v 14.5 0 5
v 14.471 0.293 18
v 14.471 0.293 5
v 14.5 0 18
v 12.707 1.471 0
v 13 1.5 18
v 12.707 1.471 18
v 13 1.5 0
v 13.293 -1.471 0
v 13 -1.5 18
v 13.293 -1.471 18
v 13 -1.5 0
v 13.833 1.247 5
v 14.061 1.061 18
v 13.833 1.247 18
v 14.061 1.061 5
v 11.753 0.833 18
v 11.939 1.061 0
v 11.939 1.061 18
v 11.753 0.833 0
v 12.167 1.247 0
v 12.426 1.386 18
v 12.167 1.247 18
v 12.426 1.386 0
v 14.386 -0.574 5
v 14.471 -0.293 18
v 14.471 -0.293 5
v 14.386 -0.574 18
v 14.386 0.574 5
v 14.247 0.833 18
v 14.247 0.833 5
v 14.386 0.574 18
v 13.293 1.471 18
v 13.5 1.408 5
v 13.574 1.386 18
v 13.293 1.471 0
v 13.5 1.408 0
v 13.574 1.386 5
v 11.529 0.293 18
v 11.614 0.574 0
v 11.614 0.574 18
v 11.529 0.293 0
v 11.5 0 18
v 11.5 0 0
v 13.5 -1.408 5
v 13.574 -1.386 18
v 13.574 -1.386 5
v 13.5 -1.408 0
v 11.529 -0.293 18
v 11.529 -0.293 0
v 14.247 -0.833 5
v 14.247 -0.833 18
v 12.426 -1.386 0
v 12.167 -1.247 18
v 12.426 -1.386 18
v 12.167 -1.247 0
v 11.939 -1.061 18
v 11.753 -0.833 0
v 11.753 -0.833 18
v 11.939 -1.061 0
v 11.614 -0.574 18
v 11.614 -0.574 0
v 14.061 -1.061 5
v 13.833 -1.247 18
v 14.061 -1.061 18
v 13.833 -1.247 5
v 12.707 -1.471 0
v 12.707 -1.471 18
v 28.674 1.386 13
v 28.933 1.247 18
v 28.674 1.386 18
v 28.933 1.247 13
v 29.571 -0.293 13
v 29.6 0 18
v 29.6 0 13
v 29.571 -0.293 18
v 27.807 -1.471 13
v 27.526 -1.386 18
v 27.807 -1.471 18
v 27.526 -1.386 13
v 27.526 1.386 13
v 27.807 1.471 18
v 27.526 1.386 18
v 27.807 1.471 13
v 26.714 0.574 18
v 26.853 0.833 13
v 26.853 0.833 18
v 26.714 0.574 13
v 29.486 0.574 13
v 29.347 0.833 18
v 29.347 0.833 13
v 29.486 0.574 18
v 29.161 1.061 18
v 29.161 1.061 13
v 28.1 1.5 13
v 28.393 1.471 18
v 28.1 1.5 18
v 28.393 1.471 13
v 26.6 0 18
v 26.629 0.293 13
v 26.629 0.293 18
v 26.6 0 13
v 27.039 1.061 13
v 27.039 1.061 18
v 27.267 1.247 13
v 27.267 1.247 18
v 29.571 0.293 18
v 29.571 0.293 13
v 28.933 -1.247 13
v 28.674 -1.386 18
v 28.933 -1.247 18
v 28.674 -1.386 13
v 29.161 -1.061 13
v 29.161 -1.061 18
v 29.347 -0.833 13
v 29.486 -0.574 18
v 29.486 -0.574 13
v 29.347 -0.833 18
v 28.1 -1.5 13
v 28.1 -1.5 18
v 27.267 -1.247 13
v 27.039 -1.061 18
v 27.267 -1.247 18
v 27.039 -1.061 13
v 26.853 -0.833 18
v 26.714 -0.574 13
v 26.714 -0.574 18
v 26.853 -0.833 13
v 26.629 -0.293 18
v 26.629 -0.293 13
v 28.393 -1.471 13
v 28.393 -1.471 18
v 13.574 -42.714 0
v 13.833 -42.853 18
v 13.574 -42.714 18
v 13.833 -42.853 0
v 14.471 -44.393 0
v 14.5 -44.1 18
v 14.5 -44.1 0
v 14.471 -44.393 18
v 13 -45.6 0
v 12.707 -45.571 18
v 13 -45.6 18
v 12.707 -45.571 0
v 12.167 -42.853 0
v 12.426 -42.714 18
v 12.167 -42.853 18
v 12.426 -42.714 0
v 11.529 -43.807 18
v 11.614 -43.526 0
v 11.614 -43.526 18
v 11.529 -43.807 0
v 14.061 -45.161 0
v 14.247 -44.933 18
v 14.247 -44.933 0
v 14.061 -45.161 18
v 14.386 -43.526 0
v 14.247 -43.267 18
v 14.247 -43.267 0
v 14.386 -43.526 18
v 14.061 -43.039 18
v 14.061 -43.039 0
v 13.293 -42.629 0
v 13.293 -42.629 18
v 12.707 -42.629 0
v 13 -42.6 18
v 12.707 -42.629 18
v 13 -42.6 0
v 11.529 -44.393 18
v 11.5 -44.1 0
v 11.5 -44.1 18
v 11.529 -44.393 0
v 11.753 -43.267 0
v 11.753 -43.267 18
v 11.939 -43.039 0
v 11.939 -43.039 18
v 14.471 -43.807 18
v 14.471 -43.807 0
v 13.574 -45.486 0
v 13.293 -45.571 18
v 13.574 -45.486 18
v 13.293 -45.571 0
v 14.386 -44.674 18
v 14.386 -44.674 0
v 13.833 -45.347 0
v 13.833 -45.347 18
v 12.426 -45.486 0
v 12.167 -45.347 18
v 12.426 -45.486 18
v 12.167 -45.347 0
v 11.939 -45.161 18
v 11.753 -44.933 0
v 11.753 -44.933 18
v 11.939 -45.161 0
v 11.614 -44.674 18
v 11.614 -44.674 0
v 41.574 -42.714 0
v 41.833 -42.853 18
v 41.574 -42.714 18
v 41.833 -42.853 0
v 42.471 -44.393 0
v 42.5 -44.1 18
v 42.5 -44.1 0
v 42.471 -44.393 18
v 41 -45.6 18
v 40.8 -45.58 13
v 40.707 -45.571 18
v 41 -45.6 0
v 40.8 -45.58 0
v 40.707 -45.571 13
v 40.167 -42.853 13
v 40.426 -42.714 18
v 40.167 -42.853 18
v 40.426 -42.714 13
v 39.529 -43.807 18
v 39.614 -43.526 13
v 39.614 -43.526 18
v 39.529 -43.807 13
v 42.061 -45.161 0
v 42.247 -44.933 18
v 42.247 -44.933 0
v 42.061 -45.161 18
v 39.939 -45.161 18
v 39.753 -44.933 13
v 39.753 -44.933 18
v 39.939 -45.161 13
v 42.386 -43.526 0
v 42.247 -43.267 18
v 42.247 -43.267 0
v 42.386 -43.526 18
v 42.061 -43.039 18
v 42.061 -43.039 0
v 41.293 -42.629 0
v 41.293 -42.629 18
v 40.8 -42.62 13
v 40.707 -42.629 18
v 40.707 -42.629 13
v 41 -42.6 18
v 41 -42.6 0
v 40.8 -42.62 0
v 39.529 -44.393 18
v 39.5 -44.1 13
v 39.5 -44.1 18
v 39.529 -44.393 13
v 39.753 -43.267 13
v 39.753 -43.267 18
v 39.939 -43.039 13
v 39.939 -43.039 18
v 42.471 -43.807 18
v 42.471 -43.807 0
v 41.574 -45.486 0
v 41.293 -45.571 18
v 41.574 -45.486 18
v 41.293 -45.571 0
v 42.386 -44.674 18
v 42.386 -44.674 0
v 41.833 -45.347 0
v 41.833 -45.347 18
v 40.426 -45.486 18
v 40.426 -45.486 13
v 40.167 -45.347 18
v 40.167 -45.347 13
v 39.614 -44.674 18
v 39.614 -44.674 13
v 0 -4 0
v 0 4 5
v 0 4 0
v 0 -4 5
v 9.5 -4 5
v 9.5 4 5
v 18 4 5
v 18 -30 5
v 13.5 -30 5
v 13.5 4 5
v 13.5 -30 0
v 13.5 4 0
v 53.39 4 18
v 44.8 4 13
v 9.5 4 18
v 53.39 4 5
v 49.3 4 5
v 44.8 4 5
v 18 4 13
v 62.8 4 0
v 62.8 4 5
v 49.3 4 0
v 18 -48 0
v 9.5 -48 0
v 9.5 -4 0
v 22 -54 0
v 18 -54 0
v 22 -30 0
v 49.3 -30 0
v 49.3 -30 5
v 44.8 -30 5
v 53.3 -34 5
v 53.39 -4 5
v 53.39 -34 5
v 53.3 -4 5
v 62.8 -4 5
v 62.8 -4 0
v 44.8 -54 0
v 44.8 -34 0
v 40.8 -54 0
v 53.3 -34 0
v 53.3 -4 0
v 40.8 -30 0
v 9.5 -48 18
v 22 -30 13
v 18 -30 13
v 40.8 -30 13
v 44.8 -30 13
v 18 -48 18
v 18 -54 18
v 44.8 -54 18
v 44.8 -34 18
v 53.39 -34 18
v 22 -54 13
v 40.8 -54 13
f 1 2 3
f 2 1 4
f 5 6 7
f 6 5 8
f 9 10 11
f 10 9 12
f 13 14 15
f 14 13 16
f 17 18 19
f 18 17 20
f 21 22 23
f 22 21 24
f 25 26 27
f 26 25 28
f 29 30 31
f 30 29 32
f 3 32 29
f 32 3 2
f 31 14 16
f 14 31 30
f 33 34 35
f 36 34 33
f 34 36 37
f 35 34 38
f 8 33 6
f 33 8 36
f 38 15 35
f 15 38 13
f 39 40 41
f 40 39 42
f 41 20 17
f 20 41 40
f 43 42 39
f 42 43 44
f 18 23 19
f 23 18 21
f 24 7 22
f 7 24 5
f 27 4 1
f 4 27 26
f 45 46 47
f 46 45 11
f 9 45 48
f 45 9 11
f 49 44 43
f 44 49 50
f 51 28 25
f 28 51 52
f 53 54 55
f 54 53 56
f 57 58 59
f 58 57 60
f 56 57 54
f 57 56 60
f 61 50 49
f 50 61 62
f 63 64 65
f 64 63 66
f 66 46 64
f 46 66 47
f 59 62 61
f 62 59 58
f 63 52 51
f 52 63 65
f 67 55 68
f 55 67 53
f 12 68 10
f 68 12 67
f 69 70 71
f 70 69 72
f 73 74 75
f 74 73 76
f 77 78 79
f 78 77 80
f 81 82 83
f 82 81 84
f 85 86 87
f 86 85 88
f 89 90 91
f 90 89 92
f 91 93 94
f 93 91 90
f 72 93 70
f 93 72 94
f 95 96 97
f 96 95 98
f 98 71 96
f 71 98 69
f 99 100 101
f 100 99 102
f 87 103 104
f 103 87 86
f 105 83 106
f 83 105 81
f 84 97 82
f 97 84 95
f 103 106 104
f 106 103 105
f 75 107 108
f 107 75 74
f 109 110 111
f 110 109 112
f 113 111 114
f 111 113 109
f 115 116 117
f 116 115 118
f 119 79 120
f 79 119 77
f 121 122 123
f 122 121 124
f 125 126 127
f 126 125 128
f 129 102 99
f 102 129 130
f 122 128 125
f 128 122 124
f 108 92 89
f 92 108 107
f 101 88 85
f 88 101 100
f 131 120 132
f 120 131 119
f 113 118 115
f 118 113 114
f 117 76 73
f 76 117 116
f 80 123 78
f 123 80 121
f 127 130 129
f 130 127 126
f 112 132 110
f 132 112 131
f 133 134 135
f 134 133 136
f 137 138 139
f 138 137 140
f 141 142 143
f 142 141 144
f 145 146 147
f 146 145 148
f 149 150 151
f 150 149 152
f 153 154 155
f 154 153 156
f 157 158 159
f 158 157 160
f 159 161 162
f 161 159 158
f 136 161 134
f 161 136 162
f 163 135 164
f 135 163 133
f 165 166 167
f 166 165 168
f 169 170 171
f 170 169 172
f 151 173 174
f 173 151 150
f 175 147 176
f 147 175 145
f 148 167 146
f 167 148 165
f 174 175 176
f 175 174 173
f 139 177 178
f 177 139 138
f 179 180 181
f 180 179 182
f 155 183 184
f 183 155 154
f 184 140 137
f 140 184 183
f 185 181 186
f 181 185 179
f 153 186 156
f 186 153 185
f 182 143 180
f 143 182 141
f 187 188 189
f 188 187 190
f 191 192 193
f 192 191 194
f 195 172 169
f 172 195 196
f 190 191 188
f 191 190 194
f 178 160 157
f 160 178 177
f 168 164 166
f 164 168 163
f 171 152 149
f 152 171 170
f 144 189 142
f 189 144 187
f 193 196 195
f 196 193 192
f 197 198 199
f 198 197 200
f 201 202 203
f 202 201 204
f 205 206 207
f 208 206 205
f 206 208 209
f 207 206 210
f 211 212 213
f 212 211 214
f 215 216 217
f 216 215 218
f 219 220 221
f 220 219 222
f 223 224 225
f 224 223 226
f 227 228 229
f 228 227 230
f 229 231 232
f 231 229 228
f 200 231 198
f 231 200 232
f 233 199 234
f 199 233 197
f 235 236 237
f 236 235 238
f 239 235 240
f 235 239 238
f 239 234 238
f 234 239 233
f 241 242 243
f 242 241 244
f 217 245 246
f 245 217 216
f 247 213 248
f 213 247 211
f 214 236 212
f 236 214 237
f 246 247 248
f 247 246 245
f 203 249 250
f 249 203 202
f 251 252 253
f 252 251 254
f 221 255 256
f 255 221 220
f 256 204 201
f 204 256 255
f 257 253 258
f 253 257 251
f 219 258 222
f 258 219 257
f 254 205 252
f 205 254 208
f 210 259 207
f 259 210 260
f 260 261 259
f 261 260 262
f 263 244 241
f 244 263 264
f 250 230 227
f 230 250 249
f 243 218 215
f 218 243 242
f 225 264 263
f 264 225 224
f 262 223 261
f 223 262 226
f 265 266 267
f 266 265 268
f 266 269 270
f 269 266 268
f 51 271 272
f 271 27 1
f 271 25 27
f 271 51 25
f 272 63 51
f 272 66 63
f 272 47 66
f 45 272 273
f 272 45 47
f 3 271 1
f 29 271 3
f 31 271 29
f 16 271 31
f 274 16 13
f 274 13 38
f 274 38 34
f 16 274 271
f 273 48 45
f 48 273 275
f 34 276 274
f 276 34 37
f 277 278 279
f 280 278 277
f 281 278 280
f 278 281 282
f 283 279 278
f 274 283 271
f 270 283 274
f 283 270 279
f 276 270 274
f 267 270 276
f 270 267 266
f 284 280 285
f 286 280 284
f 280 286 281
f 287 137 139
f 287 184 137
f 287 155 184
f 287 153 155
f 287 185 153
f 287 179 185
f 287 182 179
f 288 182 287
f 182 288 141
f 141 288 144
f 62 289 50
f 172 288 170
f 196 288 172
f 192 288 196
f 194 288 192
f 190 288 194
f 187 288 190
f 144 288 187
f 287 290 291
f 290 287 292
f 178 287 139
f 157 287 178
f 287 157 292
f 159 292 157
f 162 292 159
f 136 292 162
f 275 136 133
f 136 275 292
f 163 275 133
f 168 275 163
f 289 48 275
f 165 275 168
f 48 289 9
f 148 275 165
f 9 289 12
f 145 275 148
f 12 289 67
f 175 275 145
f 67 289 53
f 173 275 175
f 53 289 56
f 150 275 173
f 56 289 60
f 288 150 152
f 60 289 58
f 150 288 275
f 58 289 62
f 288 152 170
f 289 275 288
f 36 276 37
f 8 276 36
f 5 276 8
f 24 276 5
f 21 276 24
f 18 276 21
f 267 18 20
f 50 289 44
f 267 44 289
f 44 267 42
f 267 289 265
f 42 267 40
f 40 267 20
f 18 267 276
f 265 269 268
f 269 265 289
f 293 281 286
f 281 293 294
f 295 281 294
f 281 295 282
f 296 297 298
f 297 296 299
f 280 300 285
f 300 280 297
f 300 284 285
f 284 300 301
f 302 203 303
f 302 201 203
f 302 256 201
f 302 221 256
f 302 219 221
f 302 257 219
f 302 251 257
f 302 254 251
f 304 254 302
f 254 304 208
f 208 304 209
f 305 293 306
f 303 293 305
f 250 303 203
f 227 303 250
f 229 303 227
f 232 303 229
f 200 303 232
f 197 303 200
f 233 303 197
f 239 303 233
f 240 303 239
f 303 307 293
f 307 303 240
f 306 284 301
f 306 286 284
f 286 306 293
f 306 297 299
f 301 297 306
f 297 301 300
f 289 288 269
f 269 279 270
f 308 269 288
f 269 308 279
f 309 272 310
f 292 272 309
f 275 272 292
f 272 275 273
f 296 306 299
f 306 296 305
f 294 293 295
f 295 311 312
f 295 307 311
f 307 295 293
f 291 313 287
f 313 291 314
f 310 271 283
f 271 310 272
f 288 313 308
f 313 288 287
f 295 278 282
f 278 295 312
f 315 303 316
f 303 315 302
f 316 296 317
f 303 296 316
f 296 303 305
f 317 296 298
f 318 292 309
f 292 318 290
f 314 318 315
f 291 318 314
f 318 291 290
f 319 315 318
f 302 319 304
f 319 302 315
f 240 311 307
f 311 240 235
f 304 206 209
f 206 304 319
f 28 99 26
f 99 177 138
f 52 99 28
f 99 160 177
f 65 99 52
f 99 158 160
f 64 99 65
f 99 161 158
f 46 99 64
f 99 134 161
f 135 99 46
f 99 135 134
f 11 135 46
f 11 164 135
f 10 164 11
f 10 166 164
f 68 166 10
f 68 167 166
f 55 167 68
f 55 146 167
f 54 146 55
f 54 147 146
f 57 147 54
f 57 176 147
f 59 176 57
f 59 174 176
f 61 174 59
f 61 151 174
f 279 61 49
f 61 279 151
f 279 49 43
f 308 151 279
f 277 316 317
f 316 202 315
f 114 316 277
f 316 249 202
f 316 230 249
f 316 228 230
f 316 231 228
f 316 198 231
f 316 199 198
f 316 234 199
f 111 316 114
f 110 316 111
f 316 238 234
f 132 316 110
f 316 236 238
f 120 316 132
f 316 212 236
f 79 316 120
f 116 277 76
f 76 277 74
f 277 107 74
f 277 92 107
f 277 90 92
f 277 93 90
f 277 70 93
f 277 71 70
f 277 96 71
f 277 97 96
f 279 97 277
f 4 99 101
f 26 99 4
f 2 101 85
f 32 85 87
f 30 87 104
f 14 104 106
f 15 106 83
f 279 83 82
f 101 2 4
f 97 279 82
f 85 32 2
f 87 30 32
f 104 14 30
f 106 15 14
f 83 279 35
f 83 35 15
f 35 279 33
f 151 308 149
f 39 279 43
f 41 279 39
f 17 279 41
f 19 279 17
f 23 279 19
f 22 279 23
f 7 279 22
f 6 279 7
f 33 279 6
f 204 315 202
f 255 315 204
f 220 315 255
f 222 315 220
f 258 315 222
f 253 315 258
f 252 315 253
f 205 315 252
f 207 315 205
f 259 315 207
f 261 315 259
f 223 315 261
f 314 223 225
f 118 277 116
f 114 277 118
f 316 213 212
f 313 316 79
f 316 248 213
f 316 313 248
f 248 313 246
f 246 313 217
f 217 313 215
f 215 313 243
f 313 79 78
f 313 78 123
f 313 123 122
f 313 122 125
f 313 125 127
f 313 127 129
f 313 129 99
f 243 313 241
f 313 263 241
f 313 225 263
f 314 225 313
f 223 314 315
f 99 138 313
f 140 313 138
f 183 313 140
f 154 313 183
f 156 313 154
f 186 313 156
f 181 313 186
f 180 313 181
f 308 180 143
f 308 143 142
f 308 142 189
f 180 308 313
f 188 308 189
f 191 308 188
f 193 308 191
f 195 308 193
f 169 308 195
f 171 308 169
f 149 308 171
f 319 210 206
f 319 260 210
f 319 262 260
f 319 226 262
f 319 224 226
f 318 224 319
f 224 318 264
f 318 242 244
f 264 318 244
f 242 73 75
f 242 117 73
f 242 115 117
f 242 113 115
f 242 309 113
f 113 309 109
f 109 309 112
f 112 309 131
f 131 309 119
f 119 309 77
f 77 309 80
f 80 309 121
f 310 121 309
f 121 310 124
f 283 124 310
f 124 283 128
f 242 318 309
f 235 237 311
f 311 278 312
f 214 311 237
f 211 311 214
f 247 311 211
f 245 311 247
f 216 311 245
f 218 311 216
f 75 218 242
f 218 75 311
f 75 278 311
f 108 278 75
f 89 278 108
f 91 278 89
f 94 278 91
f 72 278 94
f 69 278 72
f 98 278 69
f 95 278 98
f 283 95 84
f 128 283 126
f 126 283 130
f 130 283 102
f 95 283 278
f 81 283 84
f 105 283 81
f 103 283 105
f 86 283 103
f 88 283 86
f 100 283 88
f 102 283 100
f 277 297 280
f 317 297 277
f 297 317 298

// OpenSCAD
h1=5;

difference(){
union(){
    
translate([0,-4,0]) cube([13.5,8,1*h1]);
//color("lightgreen") translate([13.5,-30,0]) cube([35.8,34,h1]);
translate([13.5+35.8,-4,0]) cube([13.5,8,1*h1]);

translate([13.5-4,-30,0]) cube([4,30,h1]);
translate([13.5+35.8,-30,0]) cube([4,30,h1]);

translate([13.5-4,-30-4-14,0]) cube([8.5,4+14,h1]);
translate([13.5+35.8-8.5+4,-30-4,0]) cube([8.5,4,h1]);

translate([13.5-4+8.5,-30-24,0]) cube([4,24,3*h1]);
translate([13.5+35.8-8.5,-30-24,0]) cube([4,24,3*h1]);
translate([13.5-4+8.5,-30-24,2*h1+3]) cube([35.8-9,24,h1]);

//translate([0,-48,0]) cube([20,14,1*h1]);

translate([13.5-4,-30-4-14,h1]) cube([8.5,38+14,2*h1+3]);
translate([13.5+35.8-4.5,-30-4,h1]) cube([8.59,38,2*h1+3]);

translate([13.5-4,-30-4,2*h1+3]) cube([35.8,38,h1]);

}

o=13;
color("red") {
    translate([o,0,-1]) cylinder($fn=32,d=3, h=20);
    translate([o+15.1,0,-1]) cylinder($fn=32,d=3, h=20);
    //translate([4+15,0,-1]) cylinder($fn=32,d=10, h=2*h1+1);
    translate([o,-44.1,-1]) cylinder($fn=32,d=3, h=20);
    translate([o+28,-44.1,-1]) cylinder($fn=32,d=3, h=20);
}
}
